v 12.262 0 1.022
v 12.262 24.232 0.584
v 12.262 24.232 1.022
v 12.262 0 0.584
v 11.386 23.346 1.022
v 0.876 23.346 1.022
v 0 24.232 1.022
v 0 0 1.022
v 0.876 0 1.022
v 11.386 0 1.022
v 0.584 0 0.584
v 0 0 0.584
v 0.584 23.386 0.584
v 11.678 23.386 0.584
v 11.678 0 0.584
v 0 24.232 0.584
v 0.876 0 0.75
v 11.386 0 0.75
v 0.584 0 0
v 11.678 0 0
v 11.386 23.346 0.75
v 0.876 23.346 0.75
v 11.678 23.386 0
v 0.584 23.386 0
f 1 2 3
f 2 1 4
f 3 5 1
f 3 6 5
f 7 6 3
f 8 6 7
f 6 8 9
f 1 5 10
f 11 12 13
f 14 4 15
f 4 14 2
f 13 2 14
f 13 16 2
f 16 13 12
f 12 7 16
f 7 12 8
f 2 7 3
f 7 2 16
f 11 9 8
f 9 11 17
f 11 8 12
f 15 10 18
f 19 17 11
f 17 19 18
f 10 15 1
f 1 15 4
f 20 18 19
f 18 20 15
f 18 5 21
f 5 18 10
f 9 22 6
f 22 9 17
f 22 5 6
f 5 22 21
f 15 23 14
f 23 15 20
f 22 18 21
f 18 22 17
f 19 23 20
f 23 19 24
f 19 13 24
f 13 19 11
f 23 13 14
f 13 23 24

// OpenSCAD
// file: buildings/doors_windows.scad
// doors and windows

include <../constants.scad>
use <../scale.scad>

// A typical human-sized door
module steel_door(width=36, height=80, window=false, thickness=.75) {
    translate([0, 0, inch(2)])
    difference() {
        cube([inch(width + 6), inch(height + 3), inch(1.5)]);
        translate([inch(3), -0.01, -0.05])
        cube([inch(width), inch(height), inch(1.5)+0.1]);
    }
    
    translate([inch(2), 0, 0])
    cube([inch(width + 2), inch(height + 0.1), thickness]);
    
}
// file: buildings/siding.scad
// sections of building siding
include <../constants.scad>
use <../scale.scad>


/*
Metal building siding with this pattern:
                 <- 8"->
 ___   ___ ___   ___ ___   ___   
v   \_/   v   \_/   v   \_/   
      <- 16" -->

and 1 1/4" depth on major grooves, small depth on 'v' grooves.

Parameters:
* width = width of panel (in scale feet), rounded to multiples of 4 feet
* height = height of panel (in scale feet)
* left_edge = how the left edge should be treated (corner or butt joint)
* right_edge = how the right edge should be treated (corner or butt joint)
* holes = what holes to cut into the panel:  list of [h_offset, v_offset,
    width, height] quads measured in scale feet from the lower left corner
* crown = whether or not there's a crown on the panel.
* thickness = thickness of the panel, in real mm.


*/
module metal_siding_1(width, height, left_edge=JOINT_OUTSIDE, right_edge=JOINT_OUTSIDE, holes=[], crown=true, thickness=1.5) {
    width = floor(width / 4) * 4;  // round to lowest 4' boundary
    difference() {
        cube([foot(width), foot(height), thickness]);
        // major grooves   
        for(x = [4:16:width*12]) {
            translate([inch(x), foot(height + 0.05), thickness+0.01])
            rotate([90, 0, 0])
            linear_extrude(foot(height + 0.1)) 
            polygon(points=[[0, 0], [inch(8), 0], 
                            [inch(6), -inch(1.25)], [inch(2), -inch(1.25)]]);
        }
        // notch grooves
        for(x = [0 : 16 : width * 12]) {
            translate([inch(x), foot(height + 0.05), thickness + 0.01])
            rotate([90, 0, 0])
            cylinder(d=inch(1), h=foot(height + 0.1), $fn=64);
        }
        
        // left edge
        if(left_edge == JOINT_INSIDE) {
            translate([-0.1 , foot(height + 0.1), thickness])
            rotate([90, 90, 0])
            linear_extrude(foot(height + 0.2)) 
            polygon(points=[[-0.1, -0.1], 
                            [thickness + 0.2, -0.1], 
                            [-0.1, thickness + 0.2]]);
        } else if(left_edge == JOINT_OUTSIDE) {
            translate([-0.1, foot(height + 0.1), 0])
            rotate([90, 0, 0])
            linear_extrude(foot(height + 0.2)) 
            polygon(points=[[-0.1, -0.1], 
                            [thickness + 0.2, -0.1], 
                            [-0.1, thickness + 0.2]]);
        }
        
        // right edge
        if(right_edge == JOINT_INSIDE) {
            translate([foot(width) + 0.05 , foot(height + 0.1), thickness - 0.05])
            rotate([90, 180, 0])
            linear_extrude(foot(height + 0.2)) 
            polygon(points=[[-0.1, -0.1], 
                            [thickness + 0.1, -0.1], 
                            [-0.1, thickness + 0.1]]);

        } else if(right_edge == JOINT_OUTSIDE) {
            translate([foot(width), foot(height + 0.1), -0.05])
            rotate([90, 270, 0])
            linear_extrude(foot(height + 0.2)) 
            polygon(points=[[-0.1, -0.1], 
                            [thickness + 0.2, -0.1], 
                            [-0.1, thickness + 0.2]]);
        }
        
        // holes
        for(hole = holes) {
            translate([foot(hole[0]), foot(hole[1]), -0.1])
            cube([foot(hole[2]), foot(hole[3]), thickness + 0.2]);
        }        
    }
    if(crown == true) {
     t = 6;
     translate([0, foot(height) - inch(t/3), thickness])
     rotate([90, 0, 90])
     cylinder(d=inch(t), h=foot(width), $fn=6);   
    }
}

/*
This is the same as metal_siding_1, except that it includes a pitch parameter
(expressed in degrees) to allow for the ends of buildings with a roof profile.

*/
module metal_siding_1_peak(width, height, left_edge=JOINT_OUTSIDE, right_edge=JOINT_OUTSIDE, holes=[], crown=true, pitch=15, thickness=1.5) {

    // do the 4' rounding here so our height matches what metal_siding_1
    // thinks we're working with.
    width = floor(width / 4) * 4; 
    pheight = height + (sin(pitch) * width / 2);
    
    difference() {
        // build a wall the height of the pitch, with explicitly no crown
        metal_siding_1(width, pheight, left_edge, right_edge, holes, 
                       crown=false, thickness);
        // take away the material for the pitch
        translate([-0.01, foot(pheight) + 0.01, thickness+0.1])
        rotate([180, 0, 0])
        linear_extrude(thickness + 0.2)
        polygon([[0, 0],
                 [foot(width) / 2, 0],                 
                 [0, sin(pitch) * foot(width) / 2]]);
        translate([foot(width) + 0.01, foot(pheight) + 0.01, -0.1])
        rotate([180, 180, 0])
        linear_extrude(thickness + 0.2)
        polygon([[0, 0],
                 [foot(width) / 2, 0],                 
                 [0, sin(pitch) * foot(width) / 2]]);
    }
    if(crown == true) {
        t = 6;
        half = foot(width) / 2;        
        // left hand side
        multmatrix([[1, 0, 0, 0],
                    [sin(pitch), 1, 0, 0],
                    [0, 0, 1, 0]]) 
        translate([0, foot(height) - inch(t / 3), thickness])
        rotate([0, 90, 0])
        cylinder(d=inch(t), h=half, $fn=6);    
        // right hand side
        translate([half, foot(pheight) - inch(t/3), thickness])
        multmatrix([[1, 0, 0, 0],
                    [-sin(pitch), 1, 0, 0],
                    [0, 0, 1, 0]])    
        rotate([0, 90, 0])
        cylinder(d=inch(t), h=half, $fn=6);    
    }
}


/*
Create a section of metal roofing with the dimensions in scale feet.
Width must be a in units of a whole foot.  Height can be fractional feet.

If the pitch value is set, is will modify the height to be lengthened to 
fit a roof with that angle and will chamfer the edges for a flush fit.

thickness is the thickness of the panel in real mm.
*/
module metal_roofing_1(width, height, pitch=0, thickness=.5) {
    s = height * sin(pitch);
    height = pitch == 0? height : sqrt((s * s) + (height * height));
    width = floor(width);  // always round down.
 
    multmatrix([[1, 0, 0, 0],
                [0, 1, sin(pitch), 0],
                [0, 0, 1, 0]])
    union() {
        cube([foot(width), foot(height), thickness]);    
        // major ridges
        for(i=[6: 12 : width * 12]) {        
            translate([inch(i), 0, thickness])
            rotate([-90, 0, 0])
            cylinder(d=inch(2), h=foot(height), $fn=60);
        }
        // minor ridges
        for(i=[2 : 4 : width * 12]) {
            translate([inch(i), 0, thickness])
            rotate([-90, 0, 0])
            cylinder(d=inch(1), h=foot(height), $fn=60);
        }        
    }    
    
    
}
// file: scale.scad
// scale.scad
include <constants.scad>


// scale parameters -- override in your code
//$MIN_THICKNESS = 0.1;  // default minimum thickness when scaling
//$SCALE = "ho"; // default scale to use:  ho, n, o

function scale_factor(s) = 1 / (s == "ho"? 87 : 
                               (s == "n"? 160 : 
                               (s == "o"? 48 :
                               (s == "s"? 64: 1))));

// Imperial Units
function inch(n) = max($MIN_THICKNESS, 25.4 * n * scale_factor($SCALE));
function foot(n) = max($MIN_THICKNESS, 25.4 * 12 * n * scale_factor($SCALE));

// Metric Units
function mm(n) = max($MIN_THICKNESS, n * scale_factor($SCALE));
function cm(n) = max($MIN_THICKNESS, n * 10 * scale_factor($SCALE));
function meter(n) = max($MIN_THICKNESS, n * 1000 * scale_factor($SCALE));
// file: constants.scad
// constants

//SCALE = "ho"; // scale to use:  ho, n, o
MIN_THICKNESS = 0.1;  // scale to use:  ho, n, o

JOINT_BUTT = 90; // butt-end joint
JOINT_INSIDE = 135; // inside corner joint
JOINT_OUTSIDE = 45; // outside corner joint
// main file
include <constants.scad>
use <scale.scad>
use <buildings/siding.scad>
use <buildings/doors_windows.scad>

$SCALE="ho";
$MIN_THICKNESS=0.1;

/*
translate([48, 0, 0])
metal_siding_1_peak(8, 8, holes=[[2.5, 0.25, 3, 6.66]], pitch=5);

translate([-40, 0, 0])
metal_siding_1_peak(8, 8, pitch=5);

translate([0, 40, 0])
metal_siding_1(12, 8);

translate([0, -40, 0])
metal_siding_1(12, 8);

translate([0, 20, 0])
metal_roofing_1(12, 4, 5);

metal_roofing_1(12, 4, 5);
*/

steel_door();
